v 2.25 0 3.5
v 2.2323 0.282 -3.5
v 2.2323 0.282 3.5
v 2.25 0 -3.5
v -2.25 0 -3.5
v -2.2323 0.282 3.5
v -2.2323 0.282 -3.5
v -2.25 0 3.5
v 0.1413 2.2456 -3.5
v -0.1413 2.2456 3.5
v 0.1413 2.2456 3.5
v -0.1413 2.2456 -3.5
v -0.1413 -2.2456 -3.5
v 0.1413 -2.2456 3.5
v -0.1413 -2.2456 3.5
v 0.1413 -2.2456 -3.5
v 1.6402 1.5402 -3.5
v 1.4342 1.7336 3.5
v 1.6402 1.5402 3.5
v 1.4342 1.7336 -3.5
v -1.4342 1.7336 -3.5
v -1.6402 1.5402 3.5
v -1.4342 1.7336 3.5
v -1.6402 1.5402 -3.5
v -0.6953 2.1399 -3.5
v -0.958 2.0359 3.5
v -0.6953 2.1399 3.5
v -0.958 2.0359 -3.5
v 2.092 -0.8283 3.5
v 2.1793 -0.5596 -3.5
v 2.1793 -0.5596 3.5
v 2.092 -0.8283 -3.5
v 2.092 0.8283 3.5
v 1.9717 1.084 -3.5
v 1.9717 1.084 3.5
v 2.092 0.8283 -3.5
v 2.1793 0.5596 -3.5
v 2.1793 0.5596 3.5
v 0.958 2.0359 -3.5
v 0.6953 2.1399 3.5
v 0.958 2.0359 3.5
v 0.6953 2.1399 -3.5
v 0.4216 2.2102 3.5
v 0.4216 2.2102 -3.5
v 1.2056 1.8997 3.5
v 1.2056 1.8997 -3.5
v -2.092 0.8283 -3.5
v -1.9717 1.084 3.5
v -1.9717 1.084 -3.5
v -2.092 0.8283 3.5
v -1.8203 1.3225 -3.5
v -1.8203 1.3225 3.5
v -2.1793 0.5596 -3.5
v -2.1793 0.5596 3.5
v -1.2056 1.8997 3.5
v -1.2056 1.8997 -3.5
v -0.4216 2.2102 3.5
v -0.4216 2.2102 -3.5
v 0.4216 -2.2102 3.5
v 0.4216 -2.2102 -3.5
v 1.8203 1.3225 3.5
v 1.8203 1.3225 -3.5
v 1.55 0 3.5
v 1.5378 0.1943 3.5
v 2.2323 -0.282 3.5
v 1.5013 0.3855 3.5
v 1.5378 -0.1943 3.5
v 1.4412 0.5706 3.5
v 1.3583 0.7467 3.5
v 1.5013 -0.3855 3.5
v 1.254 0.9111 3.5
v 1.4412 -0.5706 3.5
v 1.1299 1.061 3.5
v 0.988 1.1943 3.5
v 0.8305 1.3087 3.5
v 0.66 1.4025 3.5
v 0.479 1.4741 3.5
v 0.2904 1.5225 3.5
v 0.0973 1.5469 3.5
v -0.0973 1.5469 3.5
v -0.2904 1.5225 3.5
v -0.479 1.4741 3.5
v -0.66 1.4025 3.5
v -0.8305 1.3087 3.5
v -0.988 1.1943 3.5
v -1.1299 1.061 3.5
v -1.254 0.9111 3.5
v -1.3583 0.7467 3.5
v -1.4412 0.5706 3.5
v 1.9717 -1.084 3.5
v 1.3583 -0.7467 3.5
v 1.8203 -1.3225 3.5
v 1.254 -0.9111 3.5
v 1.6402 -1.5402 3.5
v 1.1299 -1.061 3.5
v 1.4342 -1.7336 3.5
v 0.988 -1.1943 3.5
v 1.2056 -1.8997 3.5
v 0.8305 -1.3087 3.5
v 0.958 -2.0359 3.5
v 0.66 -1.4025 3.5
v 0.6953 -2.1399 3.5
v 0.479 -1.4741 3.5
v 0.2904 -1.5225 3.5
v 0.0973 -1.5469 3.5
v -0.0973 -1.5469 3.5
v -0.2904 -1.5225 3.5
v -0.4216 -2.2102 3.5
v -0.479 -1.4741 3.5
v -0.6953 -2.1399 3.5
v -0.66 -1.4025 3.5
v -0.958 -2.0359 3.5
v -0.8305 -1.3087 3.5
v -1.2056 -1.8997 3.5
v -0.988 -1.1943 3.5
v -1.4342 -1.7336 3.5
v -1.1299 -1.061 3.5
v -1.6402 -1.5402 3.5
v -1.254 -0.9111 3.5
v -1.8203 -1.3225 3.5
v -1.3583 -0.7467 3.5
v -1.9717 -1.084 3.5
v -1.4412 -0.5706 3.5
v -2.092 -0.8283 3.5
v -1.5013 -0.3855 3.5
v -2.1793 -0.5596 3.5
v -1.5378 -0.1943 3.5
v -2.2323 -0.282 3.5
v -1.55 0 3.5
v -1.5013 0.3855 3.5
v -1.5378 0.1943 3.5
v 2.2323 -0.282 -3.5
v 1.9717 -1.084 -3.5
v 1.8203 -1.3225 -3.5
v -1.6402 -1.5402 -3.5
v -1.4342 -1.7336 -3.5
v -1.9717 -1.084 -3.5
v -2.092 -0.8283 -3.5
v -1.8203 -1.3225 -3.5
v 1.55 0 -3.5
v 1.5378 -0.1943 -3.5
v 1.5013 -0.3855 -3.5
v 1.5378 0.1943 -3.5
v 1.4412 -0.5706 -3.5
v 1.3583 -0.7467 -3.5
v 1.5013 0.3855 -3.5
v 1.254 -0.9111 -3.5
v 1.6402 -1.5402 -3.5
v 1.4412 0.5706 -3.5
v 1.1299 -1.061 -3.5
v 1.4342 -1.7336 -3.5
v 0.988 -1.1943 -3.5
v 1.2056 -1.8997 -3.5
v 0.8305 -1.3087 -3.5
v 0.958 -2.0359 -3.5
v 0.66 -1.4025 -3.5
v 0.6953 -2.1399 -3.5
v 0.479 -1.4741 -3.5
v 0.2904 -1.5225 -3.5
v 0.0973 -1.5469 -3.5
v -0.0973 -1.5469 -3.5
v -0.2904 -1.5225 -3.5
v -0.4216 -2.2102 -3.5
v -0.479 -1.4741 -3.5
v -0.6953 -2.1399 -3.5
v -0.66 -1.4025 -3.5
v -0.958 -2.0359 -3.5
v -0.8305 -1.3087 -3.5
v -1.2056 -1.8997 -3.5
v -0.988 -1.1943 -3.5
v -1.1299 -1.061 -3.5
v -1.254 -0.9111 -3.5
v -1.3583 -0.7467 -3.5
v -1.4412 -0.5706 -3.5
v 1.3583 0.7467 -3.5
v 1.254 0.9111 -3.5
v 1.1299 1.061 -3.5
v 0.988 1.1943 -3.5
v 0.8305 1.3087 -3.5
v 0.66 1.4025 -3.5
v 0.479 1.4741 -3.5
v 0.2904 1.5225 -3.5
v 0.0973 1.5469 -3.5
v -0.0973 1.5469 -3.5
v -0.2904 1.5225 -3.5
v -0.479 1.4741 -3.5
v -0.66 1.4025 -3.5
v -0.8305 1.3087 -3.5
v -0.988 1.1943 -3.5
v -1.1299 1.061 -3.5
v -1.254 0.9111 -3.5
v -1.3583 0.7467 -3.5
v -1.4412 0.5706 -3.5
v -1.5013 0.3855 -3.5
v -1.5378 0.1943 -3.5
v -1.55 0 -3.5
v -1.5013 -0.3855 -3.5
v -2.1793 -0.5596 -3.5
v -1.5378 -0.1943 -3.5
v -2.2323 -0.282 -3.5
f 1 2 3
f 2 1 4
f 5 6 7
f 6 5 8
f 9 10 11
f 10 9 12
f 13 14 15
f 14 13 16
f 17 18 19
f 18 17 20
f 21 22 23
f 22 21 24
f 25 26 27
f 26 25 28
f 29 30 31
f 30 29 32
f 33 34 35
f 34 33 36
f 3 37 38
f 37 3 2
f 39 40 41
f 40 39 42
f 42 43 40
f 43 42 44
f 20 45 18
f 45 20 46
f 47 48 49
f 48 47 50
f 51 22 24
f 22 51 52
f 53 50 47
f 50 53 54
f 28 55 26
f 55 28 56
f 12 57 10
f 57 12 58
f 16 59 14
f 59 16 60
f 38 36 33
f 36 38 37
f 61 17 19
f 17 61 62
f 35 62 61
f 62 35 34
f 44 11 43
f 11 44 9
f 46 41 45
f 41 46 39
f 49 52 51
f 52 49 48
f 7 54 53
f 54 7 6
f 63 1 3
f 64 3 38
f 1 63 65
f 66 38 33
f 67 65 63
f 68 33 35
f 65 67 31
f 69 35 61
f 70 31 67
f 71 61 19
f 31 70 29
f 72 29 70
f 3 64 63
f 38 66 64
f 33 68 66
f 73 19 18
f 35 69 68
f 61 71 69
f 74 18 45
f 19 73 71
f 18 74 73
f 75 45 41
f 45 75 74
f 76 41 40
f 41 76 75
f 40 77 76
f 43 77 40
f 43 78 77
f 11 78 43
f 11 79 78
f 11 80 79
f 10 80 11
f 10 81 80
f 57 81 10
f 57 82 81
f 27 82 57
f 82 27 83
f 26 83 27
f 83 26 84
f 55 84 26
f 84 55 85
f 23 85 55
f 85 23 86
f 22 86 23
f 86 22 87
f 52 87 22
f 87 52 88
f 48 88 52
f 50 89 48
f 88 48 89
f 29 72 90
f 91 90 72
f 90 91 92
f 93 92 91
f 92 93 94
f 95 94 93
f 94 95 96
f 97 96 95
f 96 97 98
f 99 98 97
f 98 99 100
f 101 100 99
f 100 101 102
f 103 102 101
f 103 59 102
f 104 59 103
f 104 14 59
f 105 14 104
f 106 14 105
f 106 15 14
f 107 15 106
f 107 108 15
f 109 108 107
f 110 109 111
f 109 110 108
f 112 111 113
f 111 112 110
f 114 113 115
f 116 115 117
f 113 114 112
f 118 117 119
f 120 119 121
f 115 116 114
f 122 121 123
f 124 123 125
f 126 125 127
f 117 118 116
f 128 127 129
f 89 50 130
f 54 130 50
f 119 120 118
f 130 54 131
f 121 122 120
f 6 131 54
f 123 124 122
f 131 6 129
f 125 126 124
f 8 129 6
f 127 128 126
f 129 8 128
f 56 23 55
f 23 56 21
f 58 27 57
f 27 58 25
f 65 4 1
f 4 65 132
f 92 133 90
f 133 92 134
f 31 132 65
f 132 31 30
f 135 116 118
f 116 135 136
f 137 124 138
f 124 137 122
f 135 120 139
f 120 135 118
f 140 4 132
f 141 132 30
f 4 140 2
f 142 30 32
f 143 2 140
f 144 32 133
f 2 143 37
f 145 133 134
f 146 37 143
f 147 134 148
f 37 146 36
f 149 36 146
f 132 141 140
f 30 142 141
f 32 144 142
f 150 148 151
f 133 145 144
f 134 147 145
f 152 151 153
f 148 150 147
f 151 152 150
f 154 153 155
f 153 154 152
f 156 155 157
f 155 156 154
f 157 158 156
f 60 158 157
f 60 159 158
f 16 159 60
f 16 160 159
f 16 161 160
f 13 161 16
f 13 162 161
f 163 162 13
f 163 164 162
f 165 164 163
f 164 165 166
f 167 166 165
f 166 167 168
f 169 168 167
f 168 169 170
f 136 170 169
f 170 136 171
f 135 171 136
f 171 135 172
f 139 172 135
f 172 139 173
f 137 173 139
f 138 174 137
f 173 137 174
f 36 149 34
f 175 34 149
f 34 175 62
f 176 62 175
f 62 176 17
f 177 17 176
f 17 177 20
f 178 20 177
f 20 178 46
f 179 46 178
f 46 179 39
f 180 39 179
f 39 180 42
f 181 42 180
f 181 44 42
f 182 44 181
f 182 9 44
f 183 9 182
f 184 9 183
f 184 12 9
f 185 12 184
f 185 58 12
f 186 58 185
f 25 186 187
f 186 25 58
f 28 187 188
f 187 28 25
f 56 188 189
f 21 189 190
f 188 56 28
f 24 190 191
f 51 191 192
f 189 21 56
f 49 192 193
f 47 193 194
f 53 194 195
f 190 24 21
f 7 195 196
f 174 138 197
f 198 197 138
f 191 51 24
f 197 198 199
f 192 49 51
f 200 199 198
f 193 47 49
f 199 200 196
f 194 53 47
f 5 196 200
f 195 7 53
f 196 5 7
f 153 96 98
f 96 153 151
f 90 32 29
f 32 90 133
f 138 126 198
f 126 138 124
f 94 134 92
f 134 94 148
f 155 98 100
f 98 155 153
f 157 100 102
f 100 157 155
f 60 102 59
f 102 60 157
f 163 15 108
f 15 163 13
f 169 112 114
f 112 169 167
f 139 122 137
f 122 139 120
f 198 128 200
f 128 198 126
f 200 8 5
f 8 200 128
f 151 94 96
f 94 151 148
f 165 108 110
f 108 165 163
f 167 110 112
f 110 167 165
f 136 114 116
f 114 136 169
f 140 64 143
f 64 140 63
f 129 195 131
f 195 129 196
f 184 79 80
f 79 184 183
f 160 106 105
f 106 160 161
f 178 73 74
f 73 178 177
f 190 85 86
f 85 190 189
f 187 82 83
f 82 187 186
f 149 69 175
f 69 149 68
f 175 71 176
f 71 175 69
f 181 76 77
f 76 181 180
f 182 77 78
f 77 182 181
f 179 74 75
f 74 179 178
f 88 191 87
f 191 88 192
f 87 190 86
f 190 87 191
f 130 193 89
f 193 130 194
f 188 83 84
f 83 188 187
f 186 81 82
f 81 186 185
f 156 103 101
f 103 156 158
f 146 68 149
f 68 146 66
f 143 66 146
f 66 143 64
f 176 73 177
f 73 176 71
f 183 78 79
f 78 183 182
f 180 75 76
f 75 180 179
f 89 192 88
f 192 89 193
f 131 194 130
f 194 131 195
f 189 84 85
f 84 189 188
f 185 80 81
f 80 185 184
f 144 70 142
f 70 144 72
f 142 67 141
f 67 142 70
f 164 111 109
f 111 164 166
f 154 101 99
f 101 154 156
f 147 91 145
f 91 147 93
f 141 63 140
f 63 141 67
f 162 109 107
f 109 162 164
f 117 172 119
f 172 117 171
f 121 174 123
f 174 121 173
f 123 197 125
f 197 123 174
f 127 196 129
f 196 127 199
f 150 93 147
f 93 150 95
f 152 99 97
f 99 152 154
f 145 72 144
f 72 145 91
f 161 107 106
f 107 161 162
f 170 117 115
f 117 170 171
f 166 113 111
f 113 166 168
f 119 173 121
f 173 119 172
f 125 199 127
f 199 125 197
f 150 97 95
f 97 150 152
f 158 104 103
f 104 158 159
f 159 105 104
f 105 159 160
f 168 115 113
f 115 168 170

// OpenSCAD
$fn = 50;


difference() {
	union() {
		translate(v = [0, 0, -3.5000000000]) {
			cylinder(h = 7, r = 2.2500000000);
		}
	}
	union() {
		translate(v = [0, 0, -100.0000000000]) {
			cylinder(h = 200, r = 1.5500000000);
		}
	}
}
